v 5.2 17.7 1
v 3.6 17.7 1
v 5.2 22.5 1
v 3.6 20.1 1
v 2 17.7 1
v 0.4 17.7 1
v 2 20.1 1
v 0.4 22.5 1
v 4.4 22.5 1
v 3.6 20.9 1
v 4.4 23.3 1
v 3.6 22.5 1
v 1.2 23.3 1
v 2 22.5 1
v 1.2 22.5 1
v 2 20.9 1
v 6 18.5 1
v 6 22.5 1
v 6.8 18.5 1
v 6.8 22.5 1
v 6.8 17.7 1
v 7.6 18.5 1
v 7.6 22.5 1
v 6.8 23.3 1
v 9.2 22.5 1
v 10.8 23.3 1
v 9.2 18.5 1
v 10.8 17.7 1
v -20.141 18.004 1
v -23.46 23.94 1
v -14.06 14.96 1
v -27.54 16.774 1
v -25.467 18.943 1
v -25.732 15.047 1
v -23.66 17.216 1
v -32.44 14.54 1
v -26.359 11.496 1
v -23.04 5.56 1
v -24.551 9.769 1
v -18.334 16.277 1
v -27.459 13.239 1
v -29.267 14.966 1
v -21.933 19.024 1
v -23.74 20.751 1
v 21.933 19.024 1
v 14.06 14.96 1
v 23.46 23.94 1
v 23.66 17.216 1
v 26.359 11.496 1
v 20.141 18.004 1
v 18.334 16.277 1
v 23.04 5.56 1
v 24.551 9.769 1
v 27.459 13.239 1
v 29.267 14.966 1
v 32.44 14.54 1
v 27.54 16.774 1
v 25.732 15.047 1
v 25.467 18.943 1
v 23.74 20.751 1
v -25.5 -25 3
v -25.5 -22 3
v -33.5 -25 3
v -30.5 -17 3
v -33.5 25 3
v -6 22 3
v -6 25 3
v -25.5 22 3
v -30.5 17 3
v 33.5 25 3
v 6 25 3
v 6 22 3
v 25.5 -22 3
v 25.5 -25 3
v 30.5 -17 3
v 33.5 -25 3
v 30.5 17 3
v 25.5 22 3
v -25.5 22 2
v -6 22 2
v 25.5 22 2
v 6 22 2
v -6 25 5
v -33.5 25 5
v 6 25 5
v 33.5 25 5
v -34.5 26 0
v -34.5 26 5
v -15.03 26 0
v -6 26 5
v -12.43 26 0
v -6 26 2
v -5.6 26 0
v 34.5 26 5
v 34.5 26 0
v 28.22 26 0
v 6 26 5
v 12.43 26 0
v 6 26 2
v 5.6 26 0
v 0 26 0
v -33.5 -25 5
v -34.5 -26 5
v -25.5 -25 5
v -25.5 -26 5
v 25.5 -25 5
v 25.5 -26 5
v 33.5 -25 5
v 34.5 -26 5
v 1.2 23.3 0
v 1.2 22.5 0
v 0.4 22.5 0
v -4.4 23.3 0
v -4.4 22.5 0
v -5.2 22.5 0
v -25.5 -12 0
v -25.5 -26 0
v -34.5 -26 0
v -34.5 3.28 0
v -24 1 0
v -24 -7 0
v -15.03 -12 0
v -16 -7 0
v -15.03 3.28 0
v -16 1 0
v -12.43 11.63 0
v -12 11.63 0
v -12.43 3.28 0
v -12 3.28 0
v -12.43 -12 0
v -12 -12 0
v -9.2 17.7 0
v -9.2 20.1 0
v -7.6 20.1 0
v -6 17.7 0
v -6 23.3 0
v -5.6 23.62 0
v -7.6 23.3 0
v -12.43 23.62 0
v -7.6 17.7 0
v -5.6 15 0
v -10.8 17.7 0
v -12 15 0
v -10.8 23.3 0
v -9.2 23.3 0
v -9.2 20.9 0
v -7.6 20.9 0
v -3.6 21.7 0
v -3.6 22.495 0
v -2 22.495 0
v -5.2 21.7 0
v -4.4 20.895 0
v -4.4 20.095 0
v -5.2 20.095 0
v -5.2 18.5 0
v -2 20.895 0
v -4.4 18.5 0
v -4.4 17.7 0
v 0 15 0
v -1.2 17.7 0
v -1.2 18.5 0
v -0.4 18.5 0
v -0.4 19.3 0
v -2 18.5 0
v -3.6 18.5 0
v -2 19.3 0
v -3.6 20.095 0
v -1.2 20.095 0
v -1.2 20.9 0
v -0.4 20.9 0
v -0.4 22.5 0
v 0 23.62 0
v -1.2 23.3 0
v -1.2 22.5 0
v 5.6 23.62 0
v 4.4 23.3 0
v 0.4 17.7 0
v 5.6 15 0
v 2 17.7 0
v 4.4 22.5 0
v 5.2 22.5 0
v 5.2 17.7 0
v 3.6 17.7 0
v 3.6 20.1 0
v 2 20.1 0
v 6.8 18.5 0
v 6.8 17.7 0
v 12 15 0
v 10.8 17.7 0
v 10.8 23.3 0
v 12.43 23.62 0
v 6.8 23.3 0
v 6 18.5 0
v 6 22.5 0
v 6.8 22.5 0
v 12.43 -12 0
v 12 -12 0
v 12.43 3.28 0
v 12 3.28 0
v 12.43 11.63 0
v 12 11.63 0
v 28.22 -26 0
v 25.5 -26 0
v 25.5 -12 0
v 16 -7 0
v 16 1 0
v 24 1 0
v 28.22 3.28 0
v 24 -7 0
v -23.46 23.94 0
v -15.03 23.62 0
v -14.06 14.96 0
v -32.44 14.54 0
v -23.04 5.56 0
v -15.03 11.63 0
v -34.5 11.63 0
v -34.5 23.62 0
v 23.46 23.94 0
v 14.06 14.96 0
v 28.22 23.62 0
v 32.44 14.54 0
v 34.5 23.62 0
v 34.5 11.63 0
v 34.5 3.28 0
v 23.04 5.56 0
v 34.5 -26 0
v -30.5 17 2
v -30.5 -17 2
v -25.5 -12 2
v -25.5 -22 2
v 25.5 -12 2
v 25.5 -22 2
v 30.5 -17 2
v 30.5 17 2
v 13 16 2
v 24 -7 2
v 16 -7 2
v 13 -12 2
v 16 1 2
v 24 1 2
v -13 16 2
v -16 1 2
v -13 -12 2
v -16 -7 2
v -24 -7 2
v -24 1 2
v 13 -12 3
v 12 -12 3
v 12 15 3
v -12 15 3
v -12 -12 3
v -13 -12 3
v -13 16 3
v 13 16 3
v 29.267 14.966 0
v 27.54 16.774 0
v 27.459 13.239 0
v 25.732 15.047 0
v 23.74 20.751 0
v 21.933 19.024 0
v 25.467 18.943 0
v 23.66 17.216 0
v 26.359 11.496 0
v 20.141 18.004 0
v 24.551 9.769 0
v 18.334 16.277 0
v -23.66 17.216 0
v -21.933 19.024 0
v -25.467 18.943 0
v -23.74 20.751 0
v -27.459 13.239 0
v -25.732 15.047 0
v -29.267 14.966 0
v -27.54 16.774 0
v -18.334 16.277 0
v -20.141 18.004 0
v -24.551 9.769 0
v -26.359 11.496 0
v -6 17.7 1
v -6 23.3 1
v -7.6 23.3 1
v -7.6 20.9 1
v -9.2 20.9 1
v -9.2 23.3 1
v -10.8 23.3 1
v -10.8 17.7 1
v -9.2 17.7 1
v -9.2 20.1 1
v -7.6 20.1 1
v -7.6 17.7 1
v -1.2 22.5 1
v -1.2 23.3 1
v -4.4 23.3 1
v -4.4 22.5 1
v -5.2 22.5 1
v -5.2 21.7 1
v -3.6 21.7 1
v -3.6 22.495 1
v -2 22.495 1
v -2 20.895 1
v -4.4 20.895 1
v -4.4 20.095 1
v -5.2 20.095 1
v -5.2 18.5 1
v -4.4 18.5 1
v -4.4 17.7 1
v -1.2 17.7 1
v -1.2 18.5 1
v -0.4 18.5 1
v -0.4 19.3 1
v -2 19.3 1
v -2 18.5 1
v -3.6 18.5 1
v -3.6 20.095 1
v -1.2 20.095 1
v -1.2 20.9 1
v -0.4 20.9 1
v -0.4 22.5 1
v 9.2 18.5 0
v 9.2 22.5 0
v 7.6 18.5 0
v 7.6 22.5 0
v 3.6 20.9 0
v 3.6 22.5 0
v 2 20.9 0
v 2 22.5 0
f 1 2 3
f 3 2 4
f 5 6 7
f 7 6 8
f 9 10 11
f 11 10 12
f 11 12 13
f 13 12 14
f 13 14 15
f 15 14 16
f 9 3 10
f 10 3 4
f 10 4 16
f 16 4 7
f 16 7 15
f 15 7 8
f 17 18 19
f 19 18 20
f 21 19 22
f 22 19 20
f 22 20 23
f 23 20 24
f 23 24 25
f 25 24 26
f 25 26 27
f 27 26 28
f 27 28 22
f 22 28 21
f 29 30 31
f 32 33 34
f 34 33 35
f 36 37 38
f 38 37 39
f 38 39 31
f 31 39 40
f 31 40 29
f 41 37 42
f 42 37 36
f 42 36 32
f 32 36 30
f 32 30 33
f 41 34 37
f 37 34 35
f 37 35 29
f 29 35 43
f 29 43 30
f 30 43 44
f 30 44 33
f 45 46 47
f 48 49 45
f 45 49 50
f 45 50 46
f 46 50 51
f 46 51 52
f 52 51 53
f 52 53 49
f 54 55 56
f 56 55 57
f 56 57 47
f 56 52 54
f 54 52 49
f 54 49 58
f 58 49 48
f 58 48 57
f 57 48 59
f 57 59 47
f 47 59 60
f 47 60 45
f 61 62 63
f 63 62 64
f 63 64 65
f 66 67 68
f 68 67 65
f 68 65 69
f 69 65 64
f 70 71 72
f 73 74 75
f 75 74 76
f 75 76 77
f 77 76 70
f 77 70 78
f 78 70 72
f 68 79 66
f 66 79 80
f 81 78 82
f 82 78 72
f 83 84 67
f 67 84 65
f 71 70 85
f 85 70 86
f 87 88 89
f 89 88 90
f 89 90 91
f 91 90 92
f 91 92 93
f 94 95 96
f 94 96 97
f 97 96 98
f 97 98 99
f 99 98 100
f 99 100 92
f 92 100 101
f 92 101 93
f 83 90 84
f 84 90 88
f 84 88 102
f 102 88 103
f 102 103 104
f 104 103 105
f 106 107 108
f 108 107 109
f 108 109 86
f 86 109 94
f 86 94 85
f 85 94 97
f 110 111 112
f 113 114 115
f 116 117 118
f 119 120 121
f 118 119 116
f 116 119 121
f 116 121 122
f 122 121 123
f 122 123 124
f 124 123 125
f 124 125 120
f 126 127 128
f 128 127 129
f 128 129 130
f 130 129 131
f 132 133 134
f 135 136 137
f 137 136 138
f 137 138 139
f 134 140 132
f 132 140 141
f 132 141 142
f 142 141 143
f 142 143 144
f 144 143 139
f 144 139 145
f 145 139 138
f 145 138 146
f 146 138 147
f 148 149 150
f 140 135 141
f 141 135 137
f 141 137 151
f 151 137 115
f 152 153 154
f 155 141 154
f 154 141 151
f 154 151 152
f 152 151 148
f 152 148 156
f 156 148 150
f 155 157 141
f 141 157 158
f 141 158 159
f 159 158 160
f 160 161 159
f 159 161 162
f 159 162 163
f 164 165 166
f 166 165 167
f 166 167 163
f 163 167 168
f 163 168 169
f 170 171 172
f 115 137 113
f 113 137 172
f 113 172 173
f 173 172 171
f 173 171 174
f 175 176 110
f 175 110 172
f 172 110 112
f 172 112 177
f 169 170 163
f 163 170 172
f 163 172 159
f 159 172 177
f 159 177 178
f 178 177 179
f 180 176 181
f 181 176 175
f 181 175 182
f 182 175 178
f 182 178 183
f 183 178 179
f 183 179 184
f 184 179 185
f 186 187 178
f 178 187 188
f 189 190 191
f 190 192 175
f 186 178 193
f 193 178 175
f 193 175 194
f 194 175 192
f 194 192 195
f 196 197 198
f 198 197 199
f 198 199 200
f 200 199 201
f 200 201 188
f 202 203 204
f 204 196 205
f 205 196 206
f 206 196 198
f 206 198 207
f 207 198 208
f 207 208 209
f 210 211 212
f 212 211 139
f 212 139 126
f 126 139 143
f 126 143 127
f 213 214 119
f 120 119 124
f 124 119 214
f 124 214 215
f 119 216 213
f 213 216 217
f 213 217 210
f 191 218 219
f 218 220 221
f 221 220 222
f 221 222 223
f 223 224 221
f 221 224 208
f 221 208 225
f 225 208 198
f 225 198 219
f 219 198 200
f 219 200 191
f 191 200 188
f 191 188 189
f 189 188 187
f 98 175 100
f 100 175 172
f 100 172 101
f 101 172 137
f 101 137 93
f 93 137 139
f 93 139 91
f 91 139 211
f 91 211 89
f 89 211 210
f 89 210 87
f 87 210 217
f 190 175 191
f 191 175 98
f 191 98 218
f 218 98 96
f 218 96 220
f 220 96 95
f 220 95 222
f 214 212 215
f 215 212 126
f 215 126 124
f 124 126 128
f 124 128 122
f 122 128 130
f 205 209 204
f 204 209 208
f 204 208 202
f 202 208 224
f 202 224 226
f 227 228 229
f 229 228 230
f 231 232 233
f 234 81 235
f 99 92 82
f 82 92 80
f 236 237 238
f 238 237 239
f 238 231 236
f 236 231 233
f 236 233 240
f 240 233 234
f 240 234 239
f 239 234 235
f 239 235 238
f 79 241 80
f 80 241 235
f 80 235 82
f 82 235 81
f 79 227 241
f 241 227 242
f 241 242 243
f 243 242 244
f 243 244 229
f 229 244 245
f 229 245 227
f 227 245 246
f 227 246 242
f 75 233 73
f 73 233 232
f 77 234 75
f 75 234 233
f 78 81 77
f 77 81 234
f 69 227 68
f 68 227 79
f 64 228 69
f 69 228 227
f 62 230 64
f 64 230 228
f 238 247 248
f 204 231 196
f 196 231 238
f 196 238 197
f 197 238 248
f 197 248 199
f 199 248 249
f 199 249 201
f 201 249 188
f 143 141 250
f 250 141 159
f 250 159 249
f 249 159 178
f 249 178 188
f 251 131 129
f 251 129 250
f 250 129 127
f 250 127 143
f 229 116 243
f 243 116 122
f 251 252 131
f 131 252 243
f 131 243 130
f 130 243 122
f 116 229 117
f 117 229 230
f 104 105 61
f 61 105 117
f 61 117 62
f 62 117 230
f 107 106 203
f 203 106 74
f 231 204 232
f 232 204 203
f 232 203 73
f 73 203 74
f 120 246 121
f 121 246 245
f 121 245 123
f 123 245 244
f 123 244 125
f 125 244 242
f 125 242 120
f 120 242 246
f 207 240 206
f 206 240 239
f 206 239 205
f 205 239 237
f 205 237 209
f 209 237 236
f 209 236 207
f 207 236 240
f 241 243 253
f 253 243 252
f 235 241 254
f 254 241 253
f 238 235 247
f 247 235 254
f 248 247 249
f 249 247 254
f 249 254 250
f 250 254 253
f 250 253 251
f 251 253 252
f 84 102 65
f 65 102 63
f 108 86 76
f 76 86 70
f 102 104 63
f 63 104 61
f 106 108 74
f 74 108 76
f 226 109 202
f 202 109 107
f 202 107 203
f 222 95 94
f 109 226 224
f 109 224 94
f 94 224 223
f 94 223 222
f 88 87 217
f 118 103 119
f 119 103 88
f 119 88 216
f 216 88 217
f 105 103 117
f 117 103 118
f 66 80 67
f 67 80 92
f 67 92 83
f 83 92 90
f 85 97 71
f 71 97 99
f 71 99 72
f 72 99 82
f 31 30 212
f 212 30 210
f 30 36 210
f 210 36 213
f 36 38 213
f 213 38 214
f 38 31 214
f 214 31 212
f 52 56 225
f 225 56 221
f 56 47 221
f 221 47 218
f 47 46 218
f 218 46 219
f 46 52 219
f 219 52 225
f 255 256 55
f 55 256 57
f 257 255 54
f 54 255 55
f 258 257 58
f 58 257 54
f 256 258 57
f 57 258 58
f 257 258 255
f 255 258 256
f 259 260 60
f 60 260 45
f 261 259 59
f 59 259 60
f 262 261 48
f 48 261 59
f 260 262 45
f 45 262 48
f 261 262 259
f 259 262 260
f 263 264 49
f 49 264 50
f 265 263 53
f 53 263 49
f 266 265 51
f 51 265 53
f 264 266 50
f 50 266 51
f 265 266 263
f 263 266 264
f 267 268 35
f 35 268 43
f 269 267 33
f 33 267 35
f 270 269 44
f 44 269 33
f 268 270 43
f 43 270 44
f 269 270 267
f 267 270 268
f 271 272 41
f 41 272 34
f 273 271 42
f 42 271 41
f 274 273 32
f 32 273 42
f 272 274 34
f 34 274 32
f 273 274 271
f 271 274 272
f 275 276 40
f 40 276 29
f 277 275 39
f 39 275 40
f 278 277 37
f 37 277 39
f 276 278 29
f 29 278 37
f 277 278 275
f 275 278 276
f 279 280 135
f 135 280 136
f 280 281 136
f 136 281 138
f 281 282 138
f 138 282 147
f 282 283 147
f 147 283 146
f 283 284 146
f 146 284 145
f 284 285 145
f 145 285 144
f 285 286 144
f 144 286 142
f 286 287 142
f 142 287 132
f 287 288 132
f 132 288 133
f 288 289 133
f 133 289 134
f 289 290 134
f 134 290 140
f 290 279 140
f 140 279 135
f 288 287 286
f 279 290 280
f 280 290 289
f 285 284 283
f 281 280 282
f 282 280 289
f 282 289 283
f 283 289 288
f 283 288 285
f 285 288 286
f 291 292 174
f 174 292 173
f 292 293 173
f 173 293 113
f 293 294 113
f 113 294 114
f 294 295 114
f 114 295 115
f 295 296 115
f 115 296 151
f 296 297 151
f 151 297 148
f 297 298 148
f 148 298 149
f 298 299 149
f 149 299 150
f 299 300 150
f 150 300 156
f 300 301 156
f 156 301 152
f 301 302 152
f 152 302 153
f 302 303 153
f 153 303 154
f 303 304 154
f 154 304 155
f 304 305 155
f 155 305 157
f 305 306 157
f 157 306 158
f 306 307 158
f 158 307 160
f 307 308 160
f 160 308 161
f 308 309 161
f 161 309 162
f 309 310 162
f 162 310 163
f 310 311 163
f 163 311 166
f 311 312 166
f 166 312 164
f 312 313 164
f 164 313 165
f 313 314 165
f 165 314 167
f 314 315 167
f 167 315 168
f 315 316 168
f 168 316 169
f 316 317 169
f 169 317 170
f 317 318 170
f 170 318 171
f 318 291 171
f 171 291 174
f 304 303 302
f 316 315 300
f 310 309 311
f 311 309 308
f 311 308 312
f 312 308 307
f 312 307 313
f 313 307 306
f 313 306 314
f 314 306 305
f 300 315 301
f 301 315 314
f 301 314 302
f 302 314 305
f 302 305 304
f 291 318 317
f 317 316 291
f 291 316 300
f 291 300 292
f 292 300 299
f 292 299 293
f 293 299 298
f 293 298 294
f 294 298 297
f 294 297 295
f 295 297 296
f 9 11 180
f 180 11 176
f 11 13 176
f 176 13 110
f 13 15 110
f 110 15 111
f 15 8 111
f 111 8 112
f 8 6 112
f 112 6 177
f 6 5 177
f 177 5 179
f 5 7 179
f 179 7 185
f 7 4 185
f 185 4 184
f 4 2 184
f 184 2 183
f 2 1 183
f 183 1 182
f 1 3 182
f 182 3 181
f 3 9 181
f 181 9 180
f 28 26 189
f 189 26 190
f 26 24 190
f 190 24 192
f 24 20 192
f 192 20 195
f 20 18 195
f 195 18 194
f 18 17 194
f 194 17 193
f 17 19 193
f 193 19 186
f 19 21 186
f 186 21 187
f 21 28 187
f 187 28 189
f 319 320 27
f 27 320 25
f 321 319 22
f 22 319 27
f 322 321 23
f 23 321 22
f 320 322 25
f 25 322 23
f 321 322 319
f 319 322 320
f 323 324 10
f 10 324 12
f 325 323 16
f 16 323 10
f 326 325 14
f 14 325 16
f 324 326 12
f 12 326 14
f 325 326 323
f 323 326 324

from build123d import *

# Parameters (mm, degrees)
SKICA1_W                    = 67
SKICA1_H                    = 50
P_IDAT_VYSUNUT_M1_DEPTH     = 3
ODEBRAT_VYSUNUT_M1_DEPTH    = 1
SKICA3_W                    = 8
SKICA3_H                    = 8
ODEBRAT_VYSUNUT_M2_DEPTH    = 4
VYSUNOUT_TENKOST_NN_1_DEPTH = 1
VYSUNOUT_TENKOST_NN_2_DEPTH = 5
SKICA6_W                    = 12
SKICA6_H                    = 4
ODEBRAT_VYSUNUT_M3_DEPTH    = 4
ODEBRAT_VYSUNUT_M5_DEPTH    = 1
P_IDAT_START                = -1
P_IDAT_VYSUNUT_M3_DEPTH     = 1
ODEBRAT_VYSUNUT_M7_DEPTH    = 1
SKICA10_W                   = 1.6
SKICA10_H                   = 4
SKICA10_H_2                 = 1.6
P_IDAT_VYSUNUT_M4_DEPTH     = 1


with BuildPart() as part:
    # Skica1 → Přidat vysunutím1 (new body)
    with BuildSketch(Plane.XY):
        Rectangle(SKICA1_W, SKICA1_H)
    extrude(amount=P_IDAT_VYSUNUT_M1_DEPTH)

    # Skica2 → Odebrat vysunutím1 (cut)
    with BuildSketch(Plane.XY.offset(3)):
        Polygon((-25.5, -22), (-30.5, -17), (-30.5, 17), (-25.5, 22), (25.5, 22), (30.5, 17), (30.5, -17), (25.5, -22), align=None)
    extrude(amount=-ODEBRAT_VYSUNUT_M1_DEPTH, mode=Mode.SUBTRACT)

    # Skica3 → Odebrat vysunutím2 (cut, through all)
    with BuildSketch(Plane(origin=(0, 0, 0), x_dir=(-1, 0, 0), z_dir=(0, 0, -1))):
        with Locations((20, -3)):
            Rectangle(SKICA3_W, SKICA3_H)
        with Locations((-20, -3)):
            Rectangle(SKICA3_W, SKICA3_H)
        Polygon((25.5, -25), (-25.5, -25), (-25.5, -12), (-12, -12), (-12, 15), (12, 15), (12, -12), (25.5, -12), align=None)
    extrude(amount=-ODEBRAT_VYSUNUT_M2_DEPTH, mode=Mode.SUBTRACT)

    # Skica4 → Vysunout tenkostěnný1 (add)
    with BuildSketch(Plane.XY.offset(2)):
        Polygon((-12, -12), (-12, 15), (12, 15), (12, -12), (13, -12), (13, 16), (-13, 16), (-13, -12), align=None)
    extrude(amount=VYSUNOUT_TENKOST_NN_1_DEPTH)

    # Skica5 → Vysunout tenkostěnný2 (add)
    with BuildSketch(Plane(origin=(0, 0, 0), x_dir=(-1, 0, 0), z_dir=(0, 0, -1))):
        Polygon((-25.5, -25), (-33.5, -25), (-33.5, 25), (33.5, 25), (33.5, -25), (25.5, -25), (25.5, -26), (34.5, -26), (34.5, 26), (-34.5, 26), (-34.5, -26), (-25.5, -26), align=None)
    extrude(amount=-VYSUNOUT_TENKOST_NN_2_DEPTH)

    # Skica6 → Odebrat vysunutím3 (cut, through all)
    with BuildSketch(Plane.XY.offset(2)):
        with Locations((0, 24)):
            Rectangle(SKICA6_W, SKICA6_H)
    extrude(amount=ODEBRAT_VYSUNUT_M3_DEPTH, mode=Mode.SUBTRACT)

    # Skica7 → Odebrat vysunutím5 (cut)
    with BuildSketch(Plane(origin=(0, 0, 0), x_dir=(-1, 0, 0), z_dir=(0, 0, -1))):
        Polygon((-32.44, 14.540476732), (-23.459523268, 23.94), (-14.06, 14.959523268), (-23.040476732, 5.56), align=None)
        Polygon((14.06, 14.959523268), (23.040476732, 5.56), (32.44, 14.540476732), (23.459523268, 23.94), align=None)
    extrude(amount=-ODEBRAT_VYSUNUT_M5_DEPTH, mode=Mode.SUBTRACT)

    # Skica8 → Přidat vysunutím3 (add)
    with BuildSketch(Plane(origin=(0, 0, 0), x_dir=(-1, 0, 0), z_dir=(0, 0, -1)).offset(P_IDAT_START)):
        Polygon((-29.266904741, 14.966465555), (-27.459304113, 13.239450799), (-25.732289356, 15.047051428), (-27.539889985, 16.774066184), align=None)
        Polygon((-25.467472278, 18.943186938), (-23.659871649, 17.216172182), (-21.932856893, 19.023772811), (-23.740457522, 20.750787567), align=None)
        Polygon((-18.333772811, 16.276666375), (-24.551025932, 9.769304113), (-26.358626561, 11.496318869), (-20.141373439, 18.003681131), align=None)
        Polygon((21.932856893, 19.023772811), (23.740457522, 20.750787567), (25.467472278, 18.943186938), (23.659871649, 17.216172182), align=None)
        Polygon((25.732289356, 15.047051428), (27.539889985, 16.774066184), (29.266904741, 14.966465555), (27.459304113, 13.239450799), align=None)
        Polygon((18.333772811, 16.276666375), (24.551025932, 9.769304113), (26.358626561, 11.496318869), (20.141373439, 18.003681131), align=None)
    extrude(amount=P_IDAT_VYSUNUT_M3_DEPTH)

    # Skica9 → Odebrat vysunutím7 (cut)
    with BuildSketch(Plane(origin=(0, 0, 0), x_dir=(-1, 0, 0), z_dir=(0, 0, -1))):
        Polygon((-10.8, 23.3), (-6.8, 23.3), (-6.8, 22.5), (-6, 22.5), (-6, 18.5), (-6.8, 18.5), (-6.8, 17.7), (-10.8, 17.7), align=None)
        Polygon((-4.4, 23.3), (-1.2, 23.3), (-1.2, 22.5), (-0.4, 22.5), (-0.4, 17.7), (-2, 17.7), (-2, 20.1), (-3.6, 20.1), (-3.6, 17.7), (-5.2, 17.7), (-5.2, 22.5), (-4.4, 22.5), align=None)
        Polygon((1.2, 23.3), (4.4, 23.3), (4.4, 22.5), (5.2, 22.5), (5.2, 21.7), (3.6, 21.7), (3.6, 22.49542164), (2, 22.49542164), (2, 20.89542164), (4.4, 20.89542164), (4.4, 20.09542164), (5.2, 20.09542164), (5.2, 18.5), (4.4, 18.5), (4.4, 17.7), (1.2, 17.7), (1.2, 18.5), (0.4, 18.5), (0.4, 19.3), (2, 19.3), (2, 18.5), (3.6, 18.5), (3.6, 20.09542164), (1.2, 20.09542164), (1.2, 20.9), (0.4, 20.9), (0.4, 22.5), (1.2, 22.5), align=None)
        Polygon((6, 23.3), (7.6, 23.3), (7.6, 20.9), (9.2, 20.9), (9.2, 23.3), (10.8, 23.3), (10.8, 17.7), (9.2, 17.7), (9.2, 20.1), (7.6, 20.1), (7.6, 17.7), (6, 17.7), align=None)
    extrude(amount=-ODEBRAT_VYSUNUT_M7_DEPTH, mode=Mode.SUBTRACT)

    # Skica10 → Přidat vysunutím4 (add)
    with BuildSketch(Plane(origin=(0, 0, 0), x_dir=(-1, 0, 0), z_dir=(0, 0, -1)).offset(P_IDAT_START)):
        with Locations((-8.4, 20.5)):
            Rectangle(SKICA10_W, SKICA10_H)
        with Locations((-2.8, 21.7)):
            Rectangle(SKICA10_W, SKICA10_H_2)
    extrude(amount=P_IDAT_VYSUNUT_M4_DEPTH)


solid = part.part
